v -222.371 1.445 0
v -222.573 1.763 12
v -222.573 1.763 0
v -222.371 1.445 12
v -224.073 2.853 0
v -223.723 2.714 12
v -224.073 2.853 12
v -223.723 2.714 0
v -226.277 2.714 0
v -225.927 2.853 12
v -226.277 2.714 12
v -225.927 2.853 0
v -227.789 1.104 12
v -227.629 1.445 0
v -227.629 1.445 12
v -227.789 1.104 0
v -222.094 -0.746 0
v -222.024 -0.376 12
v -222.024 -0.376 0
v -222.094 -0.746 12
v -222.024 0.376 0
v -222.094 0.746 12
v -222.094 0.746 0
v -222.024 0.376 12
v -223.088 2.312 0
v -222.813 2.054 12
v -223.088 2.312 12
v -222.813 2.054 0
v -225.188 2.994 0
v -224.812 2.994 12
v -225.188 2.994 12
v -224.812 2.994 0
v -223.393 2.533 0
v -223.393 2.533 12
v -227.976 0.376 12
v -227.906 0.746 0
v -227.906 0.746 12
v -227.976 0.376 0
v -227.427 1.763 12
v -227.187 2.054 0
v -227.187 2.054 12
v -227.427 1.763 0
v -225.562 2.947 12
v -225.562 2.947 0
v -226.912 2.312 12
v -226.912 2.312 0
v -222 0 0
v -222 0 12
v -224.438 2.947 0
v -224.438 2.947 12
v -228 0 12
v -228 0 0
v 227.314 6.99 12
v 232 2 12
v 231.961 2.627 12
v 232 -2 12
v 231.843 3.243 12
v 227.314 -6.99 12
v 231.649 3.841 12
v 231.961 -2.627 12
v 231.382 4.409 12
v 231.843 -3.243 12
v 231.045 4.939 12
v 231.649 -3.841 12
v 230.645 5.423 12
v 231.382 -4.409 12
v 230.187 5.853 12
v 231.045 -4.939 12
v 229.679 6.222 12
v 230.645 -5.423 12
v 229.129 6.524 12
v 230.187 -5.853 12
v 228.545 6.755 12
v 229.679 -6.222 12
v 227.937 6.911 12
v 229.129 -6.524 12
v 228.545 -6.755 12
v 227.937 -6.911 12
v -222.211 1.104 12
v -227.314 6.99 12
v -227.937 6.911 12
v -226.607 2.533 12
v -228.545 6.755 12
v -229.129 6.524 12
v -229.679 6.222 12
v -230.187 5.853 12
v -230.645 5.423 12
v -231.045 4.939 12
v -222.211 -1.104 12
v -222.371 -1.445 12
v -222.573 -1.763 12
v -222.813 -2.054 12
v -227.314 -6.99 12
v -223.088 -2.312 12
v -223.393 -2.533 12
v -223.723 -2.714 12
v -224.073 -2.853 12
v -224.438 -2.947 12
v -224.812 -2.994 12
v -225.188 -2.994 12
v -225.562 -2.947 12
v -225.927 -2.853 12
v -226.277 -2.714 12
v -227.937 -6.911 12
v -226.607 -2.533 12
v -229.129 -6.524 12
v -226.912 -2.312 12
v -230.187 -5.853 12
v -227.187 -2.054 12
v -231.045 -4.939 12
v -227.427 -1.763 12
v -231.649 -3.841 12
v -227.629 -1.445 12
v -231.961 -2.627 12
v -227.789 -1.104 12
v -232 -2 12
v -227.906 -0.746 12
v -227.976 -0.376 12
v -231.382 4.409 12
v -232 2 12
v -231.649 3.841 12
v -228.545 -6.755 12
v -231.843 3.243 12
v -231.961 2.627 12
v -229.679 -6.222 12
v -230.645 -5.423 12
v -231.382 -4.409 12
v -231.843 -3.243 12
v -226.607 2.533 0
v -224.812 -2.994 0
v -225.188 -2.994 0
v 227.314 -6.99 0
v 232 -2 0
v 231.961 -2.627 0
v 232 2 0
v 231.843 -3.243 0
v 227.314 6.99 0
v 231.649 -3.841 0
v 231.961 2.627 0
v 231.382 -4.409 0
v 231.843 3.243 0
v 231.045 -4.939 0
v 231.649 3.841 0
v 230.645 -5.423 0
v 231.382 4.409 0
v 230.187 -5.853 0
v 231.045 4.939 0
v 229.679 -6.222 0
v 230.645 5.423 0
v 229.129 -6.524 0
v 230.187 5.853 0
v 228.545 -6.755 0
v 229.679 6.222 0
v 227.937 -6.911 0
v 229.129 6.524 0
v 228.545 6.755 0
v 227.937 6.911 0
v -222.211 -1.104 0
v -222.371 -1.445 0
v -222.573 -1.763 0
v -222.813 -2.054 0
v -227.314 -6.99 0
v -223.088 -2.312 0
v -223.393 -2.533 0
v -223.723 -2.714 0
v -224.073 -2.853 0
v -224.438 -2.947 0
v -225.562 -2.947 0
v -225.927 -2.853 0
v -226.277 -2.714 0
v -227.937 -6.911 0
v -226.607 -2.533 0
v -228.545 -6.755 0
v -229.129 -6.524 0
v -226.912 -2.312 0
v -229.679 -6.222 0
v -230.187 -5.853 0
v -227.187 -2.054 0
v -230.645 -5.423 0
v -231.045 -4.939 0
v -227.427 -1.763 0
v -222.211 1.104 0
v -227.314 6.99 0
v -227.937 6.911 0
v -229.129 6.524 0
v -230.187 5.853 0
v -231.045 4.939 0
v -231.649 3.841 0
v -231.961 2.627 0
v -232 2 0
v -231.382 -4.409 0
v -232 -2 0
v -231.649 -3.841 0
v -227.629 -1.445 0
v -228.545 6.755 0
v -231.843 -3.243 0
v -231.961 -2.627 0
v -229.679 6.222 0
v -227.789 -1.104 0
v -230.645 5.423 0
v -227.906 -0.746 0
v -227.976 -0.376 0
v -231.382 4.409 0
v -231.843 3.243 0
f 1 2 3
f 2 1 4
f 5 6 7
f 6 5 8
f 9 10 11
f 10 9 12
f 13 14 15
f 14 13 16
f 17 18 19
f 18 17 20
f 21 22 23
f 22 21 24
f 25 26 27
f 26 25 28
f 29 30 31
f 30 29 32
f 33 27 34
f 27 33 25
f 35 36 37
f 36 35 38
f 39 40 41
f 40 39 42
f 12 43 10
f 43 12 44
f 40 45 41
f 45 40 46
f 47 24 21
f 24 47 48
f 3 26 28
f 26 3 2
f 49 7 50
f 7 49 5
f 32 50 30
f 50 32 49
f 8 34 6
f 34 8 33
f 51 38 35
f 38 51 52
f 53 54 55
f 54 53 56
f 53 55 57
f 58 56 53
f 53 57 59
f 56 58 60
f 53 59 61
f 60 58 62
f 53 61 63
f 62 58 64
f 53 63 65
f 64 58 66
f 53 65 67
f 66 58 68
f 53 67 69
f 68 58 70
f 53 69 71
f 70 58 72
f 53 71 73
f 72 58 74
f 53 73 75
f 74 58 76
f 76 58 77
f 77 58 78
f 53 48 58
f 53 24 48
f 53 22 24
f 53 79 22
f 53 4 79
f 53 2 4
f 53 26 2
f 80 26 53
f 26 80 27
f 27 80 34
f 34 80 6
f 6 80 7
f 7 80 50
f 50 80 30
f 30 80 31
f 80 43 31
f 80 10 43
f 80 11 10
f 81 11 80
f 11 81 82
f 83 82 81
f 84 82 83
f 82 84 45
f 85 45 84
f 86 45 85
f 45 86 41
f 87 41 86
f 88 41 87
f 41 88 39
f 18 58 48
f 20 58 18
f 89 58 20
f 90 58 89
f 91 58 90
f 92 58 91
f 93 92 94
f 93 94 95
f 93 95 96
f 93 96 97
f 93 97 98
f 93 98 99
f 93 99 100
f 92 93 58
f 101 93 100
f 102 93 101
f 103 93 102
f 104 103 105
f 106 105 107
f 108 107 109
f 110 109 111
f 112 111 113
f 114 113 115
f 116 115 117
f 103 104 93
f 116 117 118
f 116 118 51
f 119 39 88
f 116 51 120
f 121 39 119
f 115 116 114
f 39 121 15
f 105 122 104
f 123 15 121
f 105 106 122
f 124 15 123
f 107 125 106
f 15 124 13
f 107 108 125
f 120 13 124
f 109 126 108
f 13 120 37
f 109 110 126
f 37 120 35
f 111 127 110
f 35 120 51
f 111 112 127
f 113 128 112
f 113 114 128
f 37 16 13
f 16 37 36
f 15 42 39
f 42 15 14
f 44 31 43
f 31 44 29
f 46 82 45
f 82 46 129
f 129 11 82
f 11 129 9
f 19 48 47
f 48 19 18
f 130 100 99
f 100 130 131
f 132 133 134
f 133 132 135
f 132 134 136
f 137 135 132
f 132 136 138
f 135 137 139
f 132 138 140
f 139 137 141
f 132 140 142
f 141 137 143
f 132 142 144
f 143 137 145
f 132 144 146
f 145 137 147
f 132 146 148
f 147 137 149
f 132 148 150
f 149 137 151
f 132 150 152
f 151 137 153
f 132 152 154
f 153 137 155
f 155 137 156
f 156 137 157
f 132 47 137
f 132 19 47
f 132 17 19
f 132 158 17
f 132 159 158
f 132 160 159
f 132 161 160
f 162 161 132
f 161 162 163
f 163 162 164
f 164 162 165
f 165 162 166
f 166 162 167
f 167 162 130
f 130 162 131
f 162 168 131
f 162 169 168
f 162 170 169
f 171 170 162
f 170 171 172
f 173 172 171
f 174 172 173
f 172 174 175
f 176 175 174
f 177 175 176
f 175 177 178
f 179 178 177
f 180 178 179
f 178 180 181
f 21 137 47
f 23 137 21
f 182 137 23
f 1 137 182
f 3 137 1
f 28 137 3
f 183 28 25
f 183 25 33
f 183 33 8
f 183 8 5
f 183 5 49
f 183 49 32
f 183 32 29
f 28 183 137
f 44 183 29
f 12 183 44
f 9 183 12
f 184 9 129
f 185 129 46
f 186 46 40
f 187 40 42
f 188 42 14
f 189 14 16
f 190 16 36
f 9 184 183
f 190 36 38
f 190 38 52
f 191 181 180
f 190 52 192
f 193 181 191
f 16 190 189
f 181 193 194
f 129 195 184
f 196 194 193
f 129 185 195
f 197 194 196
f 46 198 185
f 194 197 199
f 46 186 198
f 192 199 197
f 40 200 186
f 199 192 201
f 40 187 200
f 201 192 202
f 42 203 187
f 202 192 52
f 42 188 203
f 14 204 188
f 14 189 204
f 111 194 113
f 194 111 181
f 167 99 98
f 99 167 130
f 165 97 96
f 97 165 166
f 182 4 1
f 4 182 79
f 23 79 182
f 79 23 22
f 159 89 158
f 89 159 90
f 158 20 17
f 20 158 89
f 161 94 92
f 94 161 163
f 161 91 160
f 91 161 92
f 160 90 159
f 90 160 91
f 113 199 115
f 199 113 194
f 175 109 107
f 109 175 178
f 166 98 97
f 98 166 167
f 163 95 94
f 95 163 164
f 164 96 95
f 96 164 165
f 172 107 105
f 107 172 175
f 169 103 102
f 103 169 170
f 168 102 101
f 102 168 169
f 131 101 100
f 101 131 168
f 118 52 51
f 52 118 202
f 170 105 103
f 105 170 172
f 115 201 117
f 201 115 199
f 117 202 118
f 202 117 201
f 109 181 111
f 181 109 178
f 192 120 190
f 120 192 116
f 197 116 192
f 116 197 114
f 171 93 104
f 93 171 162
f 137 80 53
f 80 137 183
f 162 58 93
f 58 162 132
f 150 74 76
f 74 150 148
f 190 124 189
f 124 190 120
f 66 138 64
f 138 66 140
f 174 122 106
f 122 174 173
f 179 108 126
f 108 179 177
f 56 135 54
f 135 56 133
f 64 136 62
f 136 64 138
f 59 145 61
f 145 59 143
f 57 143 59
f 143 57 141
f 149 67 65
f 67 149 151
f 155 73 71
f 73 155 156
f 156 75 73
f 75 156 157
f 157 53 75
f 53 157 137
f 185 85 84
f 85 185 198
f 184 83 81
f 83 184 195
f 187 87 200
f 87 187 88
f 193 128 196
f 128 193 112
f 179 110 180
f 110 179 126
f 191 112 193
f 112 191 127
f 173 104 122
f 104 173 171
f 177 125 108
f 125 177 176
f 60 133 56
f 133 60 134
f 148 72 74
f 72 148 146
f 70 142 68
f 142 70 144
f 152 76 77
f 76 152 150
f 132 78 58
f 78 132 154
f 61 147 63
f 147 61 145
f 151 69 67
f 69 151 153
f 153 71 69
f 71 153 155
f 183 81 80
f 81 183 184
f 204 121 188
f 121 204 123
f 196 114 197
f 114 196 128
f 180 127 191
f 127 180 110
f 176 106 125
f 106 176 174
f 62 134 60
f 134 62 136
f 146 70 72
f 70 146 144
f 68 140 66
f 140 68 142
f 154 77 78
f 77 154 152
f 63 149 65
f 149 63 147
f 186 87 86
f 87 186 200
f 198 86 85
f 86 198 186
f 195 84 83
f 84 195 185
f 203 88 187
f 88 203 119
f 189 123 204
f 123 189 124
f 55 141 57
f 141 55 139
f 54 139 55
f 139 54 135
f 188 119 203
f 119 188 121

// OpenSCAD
$fn = 50;


difference() {
	union() {
		hull() {
			translate(v = [-227.0000000000, 2.0000000000, 0]) {
				cylinder(h = 12, r = 5);
			}
			translate(v = [227.0000000000, 2.0000000000, 0]) {
				cylinder(h = 12, r = 5);
			}
			translate(v = [-227.0000000000, -2.0000000000, 0]) {
				cylinder(h = 12, r = 5);
			}
			translate(v = [227.0000000000, -2.0000000000, 0]) {
				cylinder(h = 12, r = 5);
			}
		}
	}
	union() {
		translate(v = [-225.0000000000, 0.0000000000, 0]) {
			cylinder(h = 12, r = 3.0000000000);
		}
		translate(v = [-225.0000000000, 0.0000000000, 0]) {
			cylinder(h = 12, r = 1.5000000000);
		}
		translate(v = [-225.0000000000, 0.0000000000, 0]) {
			cylinder(h = 12, r = 1.5000000000);
		}
		translate(v = [-225.0000000000, 0.0000000000, 0]) {
			cylinder(h = 12, r = 1.5000000000);
		}
	}
}
